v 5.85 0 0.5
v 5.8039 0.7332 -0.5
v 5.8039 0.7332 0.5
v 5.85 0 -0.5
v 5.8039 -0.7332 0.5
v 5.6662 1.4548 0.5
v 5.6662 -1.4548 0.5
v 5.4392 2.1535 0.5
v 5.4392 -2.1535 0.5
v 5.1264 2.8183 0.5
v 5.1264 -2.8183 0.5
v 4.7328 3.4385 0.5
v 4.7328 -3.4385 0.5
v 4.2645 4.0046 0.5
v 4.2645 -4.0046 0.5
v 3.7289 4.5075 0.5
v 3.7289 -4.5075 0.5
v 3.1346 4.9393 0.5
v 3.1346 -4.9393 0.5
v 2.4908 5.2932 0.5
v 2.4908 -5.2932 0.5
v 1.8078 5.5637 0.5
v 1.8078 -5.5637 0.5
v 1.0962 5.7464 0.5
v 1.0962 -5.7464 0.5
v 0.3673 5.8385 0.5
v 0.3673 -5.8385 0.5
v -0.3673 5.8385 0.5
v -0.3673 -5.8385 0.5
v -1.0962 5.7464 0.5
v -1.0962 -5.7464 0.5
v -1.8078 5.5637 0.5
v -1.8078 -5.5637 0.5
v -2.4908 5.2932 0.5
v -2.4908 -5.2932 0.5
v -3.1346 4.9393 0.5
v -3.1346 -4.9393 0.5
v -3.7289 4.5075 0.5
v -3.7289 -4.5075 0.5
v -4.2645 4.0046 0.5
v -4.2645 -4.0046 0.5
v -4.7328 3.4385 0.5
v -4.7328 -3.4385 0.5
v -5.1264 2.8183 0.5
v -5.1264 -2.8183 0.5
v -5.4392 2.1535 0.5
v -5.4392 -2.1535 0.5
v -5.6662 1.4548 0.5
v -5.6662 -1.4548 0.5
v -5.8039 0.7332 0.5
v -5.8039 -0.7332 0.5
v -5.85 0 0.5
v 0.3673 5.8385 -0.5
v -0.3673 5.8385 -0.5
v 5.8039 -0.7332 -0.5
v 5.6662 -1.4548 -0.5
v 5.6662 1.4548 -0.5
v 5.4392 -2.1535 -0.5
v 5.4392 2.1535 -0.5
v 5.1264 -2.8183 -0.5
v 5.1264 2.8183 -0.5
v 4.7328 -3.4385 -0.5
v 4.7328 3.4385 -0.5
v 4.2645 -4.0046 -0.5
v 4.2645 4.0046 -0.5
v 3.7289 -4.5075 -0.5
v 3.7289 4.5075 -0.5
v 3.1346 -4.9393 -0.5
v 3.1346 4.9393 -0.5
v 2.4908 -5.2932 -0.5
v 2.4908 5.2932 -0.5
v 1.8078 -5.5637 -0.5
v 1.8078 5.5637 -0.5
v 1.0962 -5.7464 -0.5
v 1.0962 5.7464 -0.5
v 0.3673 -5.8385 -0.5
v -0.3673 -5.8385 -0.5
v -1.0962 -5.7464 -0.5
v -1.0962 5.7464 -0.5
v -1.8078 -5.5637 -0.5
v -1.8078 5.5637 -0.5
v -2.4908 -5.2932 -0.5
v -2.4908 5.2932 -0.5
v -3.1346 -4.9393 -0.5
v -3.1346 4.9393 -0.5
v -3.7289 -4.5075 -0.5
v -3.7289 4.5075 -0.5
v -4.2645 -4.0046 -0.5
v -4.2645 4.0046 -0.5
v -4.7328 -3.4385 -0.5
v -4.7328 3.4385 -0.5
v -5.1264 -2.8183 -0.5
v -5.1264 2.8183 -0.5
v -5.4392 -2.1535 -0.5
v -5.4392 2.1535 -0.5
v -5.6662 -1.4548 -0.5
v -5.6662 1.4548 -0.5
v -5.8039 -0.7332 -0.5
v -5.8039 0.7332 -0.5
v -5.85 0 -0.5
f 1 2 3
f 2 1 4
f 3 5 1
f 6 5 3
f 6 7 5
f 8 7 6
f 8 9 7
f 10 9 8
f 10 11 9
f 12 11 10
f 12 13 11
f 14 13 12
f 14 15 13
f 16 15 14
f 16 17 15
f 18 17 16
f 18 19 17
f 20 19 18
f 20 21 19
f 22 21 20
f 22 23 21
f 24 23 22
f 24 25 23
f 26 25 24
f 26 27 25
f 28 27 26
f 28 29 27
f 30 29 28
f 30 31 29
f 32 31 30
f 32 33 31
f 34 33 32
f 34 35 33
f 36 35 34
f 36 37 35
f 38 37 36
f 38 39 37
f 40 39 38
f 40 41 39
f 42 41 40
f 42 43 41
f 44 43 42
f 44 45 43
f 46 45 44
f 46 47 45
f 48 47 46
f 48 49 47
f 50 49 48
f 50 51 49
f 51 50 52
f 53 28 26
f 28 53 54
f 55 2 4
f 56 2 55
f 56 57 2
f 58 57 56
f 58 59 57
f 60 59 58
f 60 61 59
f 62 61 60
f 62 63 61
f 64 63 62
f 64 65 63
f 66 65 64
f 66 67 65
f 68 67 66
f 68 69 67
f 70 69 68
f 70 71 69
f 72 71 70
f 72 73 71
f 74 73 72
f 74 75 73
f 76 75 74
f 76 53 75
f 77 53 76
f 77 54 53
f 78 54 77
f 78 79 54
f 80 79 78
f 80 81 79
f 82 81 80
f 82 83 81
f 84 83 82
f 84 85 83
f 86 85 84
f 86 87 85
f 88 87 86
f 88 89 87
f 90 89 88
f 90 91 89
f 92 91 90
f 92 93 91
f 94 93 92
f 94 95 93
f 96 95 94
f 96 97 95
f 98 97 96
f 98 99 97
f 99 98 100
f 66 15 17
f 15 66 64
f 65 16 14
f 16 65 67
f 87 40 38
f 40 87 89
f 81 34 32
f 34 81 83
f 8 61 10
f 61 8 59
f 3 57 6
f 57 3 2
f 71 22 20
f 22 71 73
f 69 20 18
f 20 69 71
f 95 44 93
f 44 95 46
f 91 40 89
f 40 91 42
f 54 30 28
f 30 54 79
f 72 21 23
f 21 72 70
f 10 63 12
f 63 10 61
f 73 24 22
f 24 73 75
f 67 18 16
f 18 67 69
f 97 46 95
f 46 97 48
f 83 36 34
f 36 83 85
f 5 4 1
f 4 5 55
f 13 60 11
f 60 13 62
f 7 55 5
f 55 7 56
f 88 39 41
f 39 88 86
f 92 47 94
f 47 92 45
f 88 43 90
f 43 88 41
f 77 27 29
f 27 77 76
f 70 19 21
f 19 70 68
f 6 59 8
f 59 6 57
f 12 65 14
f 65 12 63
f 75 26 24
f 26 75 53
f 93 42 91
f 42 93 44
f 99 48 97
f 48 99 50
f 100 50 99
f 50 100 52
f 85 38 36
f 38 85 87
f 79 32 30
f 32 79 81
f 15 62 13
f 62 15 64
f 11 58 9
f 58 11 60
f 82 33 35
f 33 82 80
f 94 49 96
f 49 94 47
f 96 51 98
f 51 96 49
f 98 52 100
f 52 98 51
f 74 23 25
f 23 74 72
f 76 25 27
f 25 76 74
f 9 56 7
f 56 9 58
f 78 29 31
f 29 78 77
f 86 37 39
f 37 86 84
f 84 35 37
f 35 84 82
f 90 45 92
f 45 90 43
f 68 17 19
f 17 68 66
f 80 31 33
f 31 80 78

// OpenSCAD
$fn = 50;


difference() {
	union() {
		translate(v = [0, 0, -0.5000000000]) {
			cylinder(h = 1, r = 5.8500000000);
		}
	}
	union() {
		translate(v = [0, 0, -100.0000000000]) {
			cylinder(h = 200, r = 0);
		}
	}
}
